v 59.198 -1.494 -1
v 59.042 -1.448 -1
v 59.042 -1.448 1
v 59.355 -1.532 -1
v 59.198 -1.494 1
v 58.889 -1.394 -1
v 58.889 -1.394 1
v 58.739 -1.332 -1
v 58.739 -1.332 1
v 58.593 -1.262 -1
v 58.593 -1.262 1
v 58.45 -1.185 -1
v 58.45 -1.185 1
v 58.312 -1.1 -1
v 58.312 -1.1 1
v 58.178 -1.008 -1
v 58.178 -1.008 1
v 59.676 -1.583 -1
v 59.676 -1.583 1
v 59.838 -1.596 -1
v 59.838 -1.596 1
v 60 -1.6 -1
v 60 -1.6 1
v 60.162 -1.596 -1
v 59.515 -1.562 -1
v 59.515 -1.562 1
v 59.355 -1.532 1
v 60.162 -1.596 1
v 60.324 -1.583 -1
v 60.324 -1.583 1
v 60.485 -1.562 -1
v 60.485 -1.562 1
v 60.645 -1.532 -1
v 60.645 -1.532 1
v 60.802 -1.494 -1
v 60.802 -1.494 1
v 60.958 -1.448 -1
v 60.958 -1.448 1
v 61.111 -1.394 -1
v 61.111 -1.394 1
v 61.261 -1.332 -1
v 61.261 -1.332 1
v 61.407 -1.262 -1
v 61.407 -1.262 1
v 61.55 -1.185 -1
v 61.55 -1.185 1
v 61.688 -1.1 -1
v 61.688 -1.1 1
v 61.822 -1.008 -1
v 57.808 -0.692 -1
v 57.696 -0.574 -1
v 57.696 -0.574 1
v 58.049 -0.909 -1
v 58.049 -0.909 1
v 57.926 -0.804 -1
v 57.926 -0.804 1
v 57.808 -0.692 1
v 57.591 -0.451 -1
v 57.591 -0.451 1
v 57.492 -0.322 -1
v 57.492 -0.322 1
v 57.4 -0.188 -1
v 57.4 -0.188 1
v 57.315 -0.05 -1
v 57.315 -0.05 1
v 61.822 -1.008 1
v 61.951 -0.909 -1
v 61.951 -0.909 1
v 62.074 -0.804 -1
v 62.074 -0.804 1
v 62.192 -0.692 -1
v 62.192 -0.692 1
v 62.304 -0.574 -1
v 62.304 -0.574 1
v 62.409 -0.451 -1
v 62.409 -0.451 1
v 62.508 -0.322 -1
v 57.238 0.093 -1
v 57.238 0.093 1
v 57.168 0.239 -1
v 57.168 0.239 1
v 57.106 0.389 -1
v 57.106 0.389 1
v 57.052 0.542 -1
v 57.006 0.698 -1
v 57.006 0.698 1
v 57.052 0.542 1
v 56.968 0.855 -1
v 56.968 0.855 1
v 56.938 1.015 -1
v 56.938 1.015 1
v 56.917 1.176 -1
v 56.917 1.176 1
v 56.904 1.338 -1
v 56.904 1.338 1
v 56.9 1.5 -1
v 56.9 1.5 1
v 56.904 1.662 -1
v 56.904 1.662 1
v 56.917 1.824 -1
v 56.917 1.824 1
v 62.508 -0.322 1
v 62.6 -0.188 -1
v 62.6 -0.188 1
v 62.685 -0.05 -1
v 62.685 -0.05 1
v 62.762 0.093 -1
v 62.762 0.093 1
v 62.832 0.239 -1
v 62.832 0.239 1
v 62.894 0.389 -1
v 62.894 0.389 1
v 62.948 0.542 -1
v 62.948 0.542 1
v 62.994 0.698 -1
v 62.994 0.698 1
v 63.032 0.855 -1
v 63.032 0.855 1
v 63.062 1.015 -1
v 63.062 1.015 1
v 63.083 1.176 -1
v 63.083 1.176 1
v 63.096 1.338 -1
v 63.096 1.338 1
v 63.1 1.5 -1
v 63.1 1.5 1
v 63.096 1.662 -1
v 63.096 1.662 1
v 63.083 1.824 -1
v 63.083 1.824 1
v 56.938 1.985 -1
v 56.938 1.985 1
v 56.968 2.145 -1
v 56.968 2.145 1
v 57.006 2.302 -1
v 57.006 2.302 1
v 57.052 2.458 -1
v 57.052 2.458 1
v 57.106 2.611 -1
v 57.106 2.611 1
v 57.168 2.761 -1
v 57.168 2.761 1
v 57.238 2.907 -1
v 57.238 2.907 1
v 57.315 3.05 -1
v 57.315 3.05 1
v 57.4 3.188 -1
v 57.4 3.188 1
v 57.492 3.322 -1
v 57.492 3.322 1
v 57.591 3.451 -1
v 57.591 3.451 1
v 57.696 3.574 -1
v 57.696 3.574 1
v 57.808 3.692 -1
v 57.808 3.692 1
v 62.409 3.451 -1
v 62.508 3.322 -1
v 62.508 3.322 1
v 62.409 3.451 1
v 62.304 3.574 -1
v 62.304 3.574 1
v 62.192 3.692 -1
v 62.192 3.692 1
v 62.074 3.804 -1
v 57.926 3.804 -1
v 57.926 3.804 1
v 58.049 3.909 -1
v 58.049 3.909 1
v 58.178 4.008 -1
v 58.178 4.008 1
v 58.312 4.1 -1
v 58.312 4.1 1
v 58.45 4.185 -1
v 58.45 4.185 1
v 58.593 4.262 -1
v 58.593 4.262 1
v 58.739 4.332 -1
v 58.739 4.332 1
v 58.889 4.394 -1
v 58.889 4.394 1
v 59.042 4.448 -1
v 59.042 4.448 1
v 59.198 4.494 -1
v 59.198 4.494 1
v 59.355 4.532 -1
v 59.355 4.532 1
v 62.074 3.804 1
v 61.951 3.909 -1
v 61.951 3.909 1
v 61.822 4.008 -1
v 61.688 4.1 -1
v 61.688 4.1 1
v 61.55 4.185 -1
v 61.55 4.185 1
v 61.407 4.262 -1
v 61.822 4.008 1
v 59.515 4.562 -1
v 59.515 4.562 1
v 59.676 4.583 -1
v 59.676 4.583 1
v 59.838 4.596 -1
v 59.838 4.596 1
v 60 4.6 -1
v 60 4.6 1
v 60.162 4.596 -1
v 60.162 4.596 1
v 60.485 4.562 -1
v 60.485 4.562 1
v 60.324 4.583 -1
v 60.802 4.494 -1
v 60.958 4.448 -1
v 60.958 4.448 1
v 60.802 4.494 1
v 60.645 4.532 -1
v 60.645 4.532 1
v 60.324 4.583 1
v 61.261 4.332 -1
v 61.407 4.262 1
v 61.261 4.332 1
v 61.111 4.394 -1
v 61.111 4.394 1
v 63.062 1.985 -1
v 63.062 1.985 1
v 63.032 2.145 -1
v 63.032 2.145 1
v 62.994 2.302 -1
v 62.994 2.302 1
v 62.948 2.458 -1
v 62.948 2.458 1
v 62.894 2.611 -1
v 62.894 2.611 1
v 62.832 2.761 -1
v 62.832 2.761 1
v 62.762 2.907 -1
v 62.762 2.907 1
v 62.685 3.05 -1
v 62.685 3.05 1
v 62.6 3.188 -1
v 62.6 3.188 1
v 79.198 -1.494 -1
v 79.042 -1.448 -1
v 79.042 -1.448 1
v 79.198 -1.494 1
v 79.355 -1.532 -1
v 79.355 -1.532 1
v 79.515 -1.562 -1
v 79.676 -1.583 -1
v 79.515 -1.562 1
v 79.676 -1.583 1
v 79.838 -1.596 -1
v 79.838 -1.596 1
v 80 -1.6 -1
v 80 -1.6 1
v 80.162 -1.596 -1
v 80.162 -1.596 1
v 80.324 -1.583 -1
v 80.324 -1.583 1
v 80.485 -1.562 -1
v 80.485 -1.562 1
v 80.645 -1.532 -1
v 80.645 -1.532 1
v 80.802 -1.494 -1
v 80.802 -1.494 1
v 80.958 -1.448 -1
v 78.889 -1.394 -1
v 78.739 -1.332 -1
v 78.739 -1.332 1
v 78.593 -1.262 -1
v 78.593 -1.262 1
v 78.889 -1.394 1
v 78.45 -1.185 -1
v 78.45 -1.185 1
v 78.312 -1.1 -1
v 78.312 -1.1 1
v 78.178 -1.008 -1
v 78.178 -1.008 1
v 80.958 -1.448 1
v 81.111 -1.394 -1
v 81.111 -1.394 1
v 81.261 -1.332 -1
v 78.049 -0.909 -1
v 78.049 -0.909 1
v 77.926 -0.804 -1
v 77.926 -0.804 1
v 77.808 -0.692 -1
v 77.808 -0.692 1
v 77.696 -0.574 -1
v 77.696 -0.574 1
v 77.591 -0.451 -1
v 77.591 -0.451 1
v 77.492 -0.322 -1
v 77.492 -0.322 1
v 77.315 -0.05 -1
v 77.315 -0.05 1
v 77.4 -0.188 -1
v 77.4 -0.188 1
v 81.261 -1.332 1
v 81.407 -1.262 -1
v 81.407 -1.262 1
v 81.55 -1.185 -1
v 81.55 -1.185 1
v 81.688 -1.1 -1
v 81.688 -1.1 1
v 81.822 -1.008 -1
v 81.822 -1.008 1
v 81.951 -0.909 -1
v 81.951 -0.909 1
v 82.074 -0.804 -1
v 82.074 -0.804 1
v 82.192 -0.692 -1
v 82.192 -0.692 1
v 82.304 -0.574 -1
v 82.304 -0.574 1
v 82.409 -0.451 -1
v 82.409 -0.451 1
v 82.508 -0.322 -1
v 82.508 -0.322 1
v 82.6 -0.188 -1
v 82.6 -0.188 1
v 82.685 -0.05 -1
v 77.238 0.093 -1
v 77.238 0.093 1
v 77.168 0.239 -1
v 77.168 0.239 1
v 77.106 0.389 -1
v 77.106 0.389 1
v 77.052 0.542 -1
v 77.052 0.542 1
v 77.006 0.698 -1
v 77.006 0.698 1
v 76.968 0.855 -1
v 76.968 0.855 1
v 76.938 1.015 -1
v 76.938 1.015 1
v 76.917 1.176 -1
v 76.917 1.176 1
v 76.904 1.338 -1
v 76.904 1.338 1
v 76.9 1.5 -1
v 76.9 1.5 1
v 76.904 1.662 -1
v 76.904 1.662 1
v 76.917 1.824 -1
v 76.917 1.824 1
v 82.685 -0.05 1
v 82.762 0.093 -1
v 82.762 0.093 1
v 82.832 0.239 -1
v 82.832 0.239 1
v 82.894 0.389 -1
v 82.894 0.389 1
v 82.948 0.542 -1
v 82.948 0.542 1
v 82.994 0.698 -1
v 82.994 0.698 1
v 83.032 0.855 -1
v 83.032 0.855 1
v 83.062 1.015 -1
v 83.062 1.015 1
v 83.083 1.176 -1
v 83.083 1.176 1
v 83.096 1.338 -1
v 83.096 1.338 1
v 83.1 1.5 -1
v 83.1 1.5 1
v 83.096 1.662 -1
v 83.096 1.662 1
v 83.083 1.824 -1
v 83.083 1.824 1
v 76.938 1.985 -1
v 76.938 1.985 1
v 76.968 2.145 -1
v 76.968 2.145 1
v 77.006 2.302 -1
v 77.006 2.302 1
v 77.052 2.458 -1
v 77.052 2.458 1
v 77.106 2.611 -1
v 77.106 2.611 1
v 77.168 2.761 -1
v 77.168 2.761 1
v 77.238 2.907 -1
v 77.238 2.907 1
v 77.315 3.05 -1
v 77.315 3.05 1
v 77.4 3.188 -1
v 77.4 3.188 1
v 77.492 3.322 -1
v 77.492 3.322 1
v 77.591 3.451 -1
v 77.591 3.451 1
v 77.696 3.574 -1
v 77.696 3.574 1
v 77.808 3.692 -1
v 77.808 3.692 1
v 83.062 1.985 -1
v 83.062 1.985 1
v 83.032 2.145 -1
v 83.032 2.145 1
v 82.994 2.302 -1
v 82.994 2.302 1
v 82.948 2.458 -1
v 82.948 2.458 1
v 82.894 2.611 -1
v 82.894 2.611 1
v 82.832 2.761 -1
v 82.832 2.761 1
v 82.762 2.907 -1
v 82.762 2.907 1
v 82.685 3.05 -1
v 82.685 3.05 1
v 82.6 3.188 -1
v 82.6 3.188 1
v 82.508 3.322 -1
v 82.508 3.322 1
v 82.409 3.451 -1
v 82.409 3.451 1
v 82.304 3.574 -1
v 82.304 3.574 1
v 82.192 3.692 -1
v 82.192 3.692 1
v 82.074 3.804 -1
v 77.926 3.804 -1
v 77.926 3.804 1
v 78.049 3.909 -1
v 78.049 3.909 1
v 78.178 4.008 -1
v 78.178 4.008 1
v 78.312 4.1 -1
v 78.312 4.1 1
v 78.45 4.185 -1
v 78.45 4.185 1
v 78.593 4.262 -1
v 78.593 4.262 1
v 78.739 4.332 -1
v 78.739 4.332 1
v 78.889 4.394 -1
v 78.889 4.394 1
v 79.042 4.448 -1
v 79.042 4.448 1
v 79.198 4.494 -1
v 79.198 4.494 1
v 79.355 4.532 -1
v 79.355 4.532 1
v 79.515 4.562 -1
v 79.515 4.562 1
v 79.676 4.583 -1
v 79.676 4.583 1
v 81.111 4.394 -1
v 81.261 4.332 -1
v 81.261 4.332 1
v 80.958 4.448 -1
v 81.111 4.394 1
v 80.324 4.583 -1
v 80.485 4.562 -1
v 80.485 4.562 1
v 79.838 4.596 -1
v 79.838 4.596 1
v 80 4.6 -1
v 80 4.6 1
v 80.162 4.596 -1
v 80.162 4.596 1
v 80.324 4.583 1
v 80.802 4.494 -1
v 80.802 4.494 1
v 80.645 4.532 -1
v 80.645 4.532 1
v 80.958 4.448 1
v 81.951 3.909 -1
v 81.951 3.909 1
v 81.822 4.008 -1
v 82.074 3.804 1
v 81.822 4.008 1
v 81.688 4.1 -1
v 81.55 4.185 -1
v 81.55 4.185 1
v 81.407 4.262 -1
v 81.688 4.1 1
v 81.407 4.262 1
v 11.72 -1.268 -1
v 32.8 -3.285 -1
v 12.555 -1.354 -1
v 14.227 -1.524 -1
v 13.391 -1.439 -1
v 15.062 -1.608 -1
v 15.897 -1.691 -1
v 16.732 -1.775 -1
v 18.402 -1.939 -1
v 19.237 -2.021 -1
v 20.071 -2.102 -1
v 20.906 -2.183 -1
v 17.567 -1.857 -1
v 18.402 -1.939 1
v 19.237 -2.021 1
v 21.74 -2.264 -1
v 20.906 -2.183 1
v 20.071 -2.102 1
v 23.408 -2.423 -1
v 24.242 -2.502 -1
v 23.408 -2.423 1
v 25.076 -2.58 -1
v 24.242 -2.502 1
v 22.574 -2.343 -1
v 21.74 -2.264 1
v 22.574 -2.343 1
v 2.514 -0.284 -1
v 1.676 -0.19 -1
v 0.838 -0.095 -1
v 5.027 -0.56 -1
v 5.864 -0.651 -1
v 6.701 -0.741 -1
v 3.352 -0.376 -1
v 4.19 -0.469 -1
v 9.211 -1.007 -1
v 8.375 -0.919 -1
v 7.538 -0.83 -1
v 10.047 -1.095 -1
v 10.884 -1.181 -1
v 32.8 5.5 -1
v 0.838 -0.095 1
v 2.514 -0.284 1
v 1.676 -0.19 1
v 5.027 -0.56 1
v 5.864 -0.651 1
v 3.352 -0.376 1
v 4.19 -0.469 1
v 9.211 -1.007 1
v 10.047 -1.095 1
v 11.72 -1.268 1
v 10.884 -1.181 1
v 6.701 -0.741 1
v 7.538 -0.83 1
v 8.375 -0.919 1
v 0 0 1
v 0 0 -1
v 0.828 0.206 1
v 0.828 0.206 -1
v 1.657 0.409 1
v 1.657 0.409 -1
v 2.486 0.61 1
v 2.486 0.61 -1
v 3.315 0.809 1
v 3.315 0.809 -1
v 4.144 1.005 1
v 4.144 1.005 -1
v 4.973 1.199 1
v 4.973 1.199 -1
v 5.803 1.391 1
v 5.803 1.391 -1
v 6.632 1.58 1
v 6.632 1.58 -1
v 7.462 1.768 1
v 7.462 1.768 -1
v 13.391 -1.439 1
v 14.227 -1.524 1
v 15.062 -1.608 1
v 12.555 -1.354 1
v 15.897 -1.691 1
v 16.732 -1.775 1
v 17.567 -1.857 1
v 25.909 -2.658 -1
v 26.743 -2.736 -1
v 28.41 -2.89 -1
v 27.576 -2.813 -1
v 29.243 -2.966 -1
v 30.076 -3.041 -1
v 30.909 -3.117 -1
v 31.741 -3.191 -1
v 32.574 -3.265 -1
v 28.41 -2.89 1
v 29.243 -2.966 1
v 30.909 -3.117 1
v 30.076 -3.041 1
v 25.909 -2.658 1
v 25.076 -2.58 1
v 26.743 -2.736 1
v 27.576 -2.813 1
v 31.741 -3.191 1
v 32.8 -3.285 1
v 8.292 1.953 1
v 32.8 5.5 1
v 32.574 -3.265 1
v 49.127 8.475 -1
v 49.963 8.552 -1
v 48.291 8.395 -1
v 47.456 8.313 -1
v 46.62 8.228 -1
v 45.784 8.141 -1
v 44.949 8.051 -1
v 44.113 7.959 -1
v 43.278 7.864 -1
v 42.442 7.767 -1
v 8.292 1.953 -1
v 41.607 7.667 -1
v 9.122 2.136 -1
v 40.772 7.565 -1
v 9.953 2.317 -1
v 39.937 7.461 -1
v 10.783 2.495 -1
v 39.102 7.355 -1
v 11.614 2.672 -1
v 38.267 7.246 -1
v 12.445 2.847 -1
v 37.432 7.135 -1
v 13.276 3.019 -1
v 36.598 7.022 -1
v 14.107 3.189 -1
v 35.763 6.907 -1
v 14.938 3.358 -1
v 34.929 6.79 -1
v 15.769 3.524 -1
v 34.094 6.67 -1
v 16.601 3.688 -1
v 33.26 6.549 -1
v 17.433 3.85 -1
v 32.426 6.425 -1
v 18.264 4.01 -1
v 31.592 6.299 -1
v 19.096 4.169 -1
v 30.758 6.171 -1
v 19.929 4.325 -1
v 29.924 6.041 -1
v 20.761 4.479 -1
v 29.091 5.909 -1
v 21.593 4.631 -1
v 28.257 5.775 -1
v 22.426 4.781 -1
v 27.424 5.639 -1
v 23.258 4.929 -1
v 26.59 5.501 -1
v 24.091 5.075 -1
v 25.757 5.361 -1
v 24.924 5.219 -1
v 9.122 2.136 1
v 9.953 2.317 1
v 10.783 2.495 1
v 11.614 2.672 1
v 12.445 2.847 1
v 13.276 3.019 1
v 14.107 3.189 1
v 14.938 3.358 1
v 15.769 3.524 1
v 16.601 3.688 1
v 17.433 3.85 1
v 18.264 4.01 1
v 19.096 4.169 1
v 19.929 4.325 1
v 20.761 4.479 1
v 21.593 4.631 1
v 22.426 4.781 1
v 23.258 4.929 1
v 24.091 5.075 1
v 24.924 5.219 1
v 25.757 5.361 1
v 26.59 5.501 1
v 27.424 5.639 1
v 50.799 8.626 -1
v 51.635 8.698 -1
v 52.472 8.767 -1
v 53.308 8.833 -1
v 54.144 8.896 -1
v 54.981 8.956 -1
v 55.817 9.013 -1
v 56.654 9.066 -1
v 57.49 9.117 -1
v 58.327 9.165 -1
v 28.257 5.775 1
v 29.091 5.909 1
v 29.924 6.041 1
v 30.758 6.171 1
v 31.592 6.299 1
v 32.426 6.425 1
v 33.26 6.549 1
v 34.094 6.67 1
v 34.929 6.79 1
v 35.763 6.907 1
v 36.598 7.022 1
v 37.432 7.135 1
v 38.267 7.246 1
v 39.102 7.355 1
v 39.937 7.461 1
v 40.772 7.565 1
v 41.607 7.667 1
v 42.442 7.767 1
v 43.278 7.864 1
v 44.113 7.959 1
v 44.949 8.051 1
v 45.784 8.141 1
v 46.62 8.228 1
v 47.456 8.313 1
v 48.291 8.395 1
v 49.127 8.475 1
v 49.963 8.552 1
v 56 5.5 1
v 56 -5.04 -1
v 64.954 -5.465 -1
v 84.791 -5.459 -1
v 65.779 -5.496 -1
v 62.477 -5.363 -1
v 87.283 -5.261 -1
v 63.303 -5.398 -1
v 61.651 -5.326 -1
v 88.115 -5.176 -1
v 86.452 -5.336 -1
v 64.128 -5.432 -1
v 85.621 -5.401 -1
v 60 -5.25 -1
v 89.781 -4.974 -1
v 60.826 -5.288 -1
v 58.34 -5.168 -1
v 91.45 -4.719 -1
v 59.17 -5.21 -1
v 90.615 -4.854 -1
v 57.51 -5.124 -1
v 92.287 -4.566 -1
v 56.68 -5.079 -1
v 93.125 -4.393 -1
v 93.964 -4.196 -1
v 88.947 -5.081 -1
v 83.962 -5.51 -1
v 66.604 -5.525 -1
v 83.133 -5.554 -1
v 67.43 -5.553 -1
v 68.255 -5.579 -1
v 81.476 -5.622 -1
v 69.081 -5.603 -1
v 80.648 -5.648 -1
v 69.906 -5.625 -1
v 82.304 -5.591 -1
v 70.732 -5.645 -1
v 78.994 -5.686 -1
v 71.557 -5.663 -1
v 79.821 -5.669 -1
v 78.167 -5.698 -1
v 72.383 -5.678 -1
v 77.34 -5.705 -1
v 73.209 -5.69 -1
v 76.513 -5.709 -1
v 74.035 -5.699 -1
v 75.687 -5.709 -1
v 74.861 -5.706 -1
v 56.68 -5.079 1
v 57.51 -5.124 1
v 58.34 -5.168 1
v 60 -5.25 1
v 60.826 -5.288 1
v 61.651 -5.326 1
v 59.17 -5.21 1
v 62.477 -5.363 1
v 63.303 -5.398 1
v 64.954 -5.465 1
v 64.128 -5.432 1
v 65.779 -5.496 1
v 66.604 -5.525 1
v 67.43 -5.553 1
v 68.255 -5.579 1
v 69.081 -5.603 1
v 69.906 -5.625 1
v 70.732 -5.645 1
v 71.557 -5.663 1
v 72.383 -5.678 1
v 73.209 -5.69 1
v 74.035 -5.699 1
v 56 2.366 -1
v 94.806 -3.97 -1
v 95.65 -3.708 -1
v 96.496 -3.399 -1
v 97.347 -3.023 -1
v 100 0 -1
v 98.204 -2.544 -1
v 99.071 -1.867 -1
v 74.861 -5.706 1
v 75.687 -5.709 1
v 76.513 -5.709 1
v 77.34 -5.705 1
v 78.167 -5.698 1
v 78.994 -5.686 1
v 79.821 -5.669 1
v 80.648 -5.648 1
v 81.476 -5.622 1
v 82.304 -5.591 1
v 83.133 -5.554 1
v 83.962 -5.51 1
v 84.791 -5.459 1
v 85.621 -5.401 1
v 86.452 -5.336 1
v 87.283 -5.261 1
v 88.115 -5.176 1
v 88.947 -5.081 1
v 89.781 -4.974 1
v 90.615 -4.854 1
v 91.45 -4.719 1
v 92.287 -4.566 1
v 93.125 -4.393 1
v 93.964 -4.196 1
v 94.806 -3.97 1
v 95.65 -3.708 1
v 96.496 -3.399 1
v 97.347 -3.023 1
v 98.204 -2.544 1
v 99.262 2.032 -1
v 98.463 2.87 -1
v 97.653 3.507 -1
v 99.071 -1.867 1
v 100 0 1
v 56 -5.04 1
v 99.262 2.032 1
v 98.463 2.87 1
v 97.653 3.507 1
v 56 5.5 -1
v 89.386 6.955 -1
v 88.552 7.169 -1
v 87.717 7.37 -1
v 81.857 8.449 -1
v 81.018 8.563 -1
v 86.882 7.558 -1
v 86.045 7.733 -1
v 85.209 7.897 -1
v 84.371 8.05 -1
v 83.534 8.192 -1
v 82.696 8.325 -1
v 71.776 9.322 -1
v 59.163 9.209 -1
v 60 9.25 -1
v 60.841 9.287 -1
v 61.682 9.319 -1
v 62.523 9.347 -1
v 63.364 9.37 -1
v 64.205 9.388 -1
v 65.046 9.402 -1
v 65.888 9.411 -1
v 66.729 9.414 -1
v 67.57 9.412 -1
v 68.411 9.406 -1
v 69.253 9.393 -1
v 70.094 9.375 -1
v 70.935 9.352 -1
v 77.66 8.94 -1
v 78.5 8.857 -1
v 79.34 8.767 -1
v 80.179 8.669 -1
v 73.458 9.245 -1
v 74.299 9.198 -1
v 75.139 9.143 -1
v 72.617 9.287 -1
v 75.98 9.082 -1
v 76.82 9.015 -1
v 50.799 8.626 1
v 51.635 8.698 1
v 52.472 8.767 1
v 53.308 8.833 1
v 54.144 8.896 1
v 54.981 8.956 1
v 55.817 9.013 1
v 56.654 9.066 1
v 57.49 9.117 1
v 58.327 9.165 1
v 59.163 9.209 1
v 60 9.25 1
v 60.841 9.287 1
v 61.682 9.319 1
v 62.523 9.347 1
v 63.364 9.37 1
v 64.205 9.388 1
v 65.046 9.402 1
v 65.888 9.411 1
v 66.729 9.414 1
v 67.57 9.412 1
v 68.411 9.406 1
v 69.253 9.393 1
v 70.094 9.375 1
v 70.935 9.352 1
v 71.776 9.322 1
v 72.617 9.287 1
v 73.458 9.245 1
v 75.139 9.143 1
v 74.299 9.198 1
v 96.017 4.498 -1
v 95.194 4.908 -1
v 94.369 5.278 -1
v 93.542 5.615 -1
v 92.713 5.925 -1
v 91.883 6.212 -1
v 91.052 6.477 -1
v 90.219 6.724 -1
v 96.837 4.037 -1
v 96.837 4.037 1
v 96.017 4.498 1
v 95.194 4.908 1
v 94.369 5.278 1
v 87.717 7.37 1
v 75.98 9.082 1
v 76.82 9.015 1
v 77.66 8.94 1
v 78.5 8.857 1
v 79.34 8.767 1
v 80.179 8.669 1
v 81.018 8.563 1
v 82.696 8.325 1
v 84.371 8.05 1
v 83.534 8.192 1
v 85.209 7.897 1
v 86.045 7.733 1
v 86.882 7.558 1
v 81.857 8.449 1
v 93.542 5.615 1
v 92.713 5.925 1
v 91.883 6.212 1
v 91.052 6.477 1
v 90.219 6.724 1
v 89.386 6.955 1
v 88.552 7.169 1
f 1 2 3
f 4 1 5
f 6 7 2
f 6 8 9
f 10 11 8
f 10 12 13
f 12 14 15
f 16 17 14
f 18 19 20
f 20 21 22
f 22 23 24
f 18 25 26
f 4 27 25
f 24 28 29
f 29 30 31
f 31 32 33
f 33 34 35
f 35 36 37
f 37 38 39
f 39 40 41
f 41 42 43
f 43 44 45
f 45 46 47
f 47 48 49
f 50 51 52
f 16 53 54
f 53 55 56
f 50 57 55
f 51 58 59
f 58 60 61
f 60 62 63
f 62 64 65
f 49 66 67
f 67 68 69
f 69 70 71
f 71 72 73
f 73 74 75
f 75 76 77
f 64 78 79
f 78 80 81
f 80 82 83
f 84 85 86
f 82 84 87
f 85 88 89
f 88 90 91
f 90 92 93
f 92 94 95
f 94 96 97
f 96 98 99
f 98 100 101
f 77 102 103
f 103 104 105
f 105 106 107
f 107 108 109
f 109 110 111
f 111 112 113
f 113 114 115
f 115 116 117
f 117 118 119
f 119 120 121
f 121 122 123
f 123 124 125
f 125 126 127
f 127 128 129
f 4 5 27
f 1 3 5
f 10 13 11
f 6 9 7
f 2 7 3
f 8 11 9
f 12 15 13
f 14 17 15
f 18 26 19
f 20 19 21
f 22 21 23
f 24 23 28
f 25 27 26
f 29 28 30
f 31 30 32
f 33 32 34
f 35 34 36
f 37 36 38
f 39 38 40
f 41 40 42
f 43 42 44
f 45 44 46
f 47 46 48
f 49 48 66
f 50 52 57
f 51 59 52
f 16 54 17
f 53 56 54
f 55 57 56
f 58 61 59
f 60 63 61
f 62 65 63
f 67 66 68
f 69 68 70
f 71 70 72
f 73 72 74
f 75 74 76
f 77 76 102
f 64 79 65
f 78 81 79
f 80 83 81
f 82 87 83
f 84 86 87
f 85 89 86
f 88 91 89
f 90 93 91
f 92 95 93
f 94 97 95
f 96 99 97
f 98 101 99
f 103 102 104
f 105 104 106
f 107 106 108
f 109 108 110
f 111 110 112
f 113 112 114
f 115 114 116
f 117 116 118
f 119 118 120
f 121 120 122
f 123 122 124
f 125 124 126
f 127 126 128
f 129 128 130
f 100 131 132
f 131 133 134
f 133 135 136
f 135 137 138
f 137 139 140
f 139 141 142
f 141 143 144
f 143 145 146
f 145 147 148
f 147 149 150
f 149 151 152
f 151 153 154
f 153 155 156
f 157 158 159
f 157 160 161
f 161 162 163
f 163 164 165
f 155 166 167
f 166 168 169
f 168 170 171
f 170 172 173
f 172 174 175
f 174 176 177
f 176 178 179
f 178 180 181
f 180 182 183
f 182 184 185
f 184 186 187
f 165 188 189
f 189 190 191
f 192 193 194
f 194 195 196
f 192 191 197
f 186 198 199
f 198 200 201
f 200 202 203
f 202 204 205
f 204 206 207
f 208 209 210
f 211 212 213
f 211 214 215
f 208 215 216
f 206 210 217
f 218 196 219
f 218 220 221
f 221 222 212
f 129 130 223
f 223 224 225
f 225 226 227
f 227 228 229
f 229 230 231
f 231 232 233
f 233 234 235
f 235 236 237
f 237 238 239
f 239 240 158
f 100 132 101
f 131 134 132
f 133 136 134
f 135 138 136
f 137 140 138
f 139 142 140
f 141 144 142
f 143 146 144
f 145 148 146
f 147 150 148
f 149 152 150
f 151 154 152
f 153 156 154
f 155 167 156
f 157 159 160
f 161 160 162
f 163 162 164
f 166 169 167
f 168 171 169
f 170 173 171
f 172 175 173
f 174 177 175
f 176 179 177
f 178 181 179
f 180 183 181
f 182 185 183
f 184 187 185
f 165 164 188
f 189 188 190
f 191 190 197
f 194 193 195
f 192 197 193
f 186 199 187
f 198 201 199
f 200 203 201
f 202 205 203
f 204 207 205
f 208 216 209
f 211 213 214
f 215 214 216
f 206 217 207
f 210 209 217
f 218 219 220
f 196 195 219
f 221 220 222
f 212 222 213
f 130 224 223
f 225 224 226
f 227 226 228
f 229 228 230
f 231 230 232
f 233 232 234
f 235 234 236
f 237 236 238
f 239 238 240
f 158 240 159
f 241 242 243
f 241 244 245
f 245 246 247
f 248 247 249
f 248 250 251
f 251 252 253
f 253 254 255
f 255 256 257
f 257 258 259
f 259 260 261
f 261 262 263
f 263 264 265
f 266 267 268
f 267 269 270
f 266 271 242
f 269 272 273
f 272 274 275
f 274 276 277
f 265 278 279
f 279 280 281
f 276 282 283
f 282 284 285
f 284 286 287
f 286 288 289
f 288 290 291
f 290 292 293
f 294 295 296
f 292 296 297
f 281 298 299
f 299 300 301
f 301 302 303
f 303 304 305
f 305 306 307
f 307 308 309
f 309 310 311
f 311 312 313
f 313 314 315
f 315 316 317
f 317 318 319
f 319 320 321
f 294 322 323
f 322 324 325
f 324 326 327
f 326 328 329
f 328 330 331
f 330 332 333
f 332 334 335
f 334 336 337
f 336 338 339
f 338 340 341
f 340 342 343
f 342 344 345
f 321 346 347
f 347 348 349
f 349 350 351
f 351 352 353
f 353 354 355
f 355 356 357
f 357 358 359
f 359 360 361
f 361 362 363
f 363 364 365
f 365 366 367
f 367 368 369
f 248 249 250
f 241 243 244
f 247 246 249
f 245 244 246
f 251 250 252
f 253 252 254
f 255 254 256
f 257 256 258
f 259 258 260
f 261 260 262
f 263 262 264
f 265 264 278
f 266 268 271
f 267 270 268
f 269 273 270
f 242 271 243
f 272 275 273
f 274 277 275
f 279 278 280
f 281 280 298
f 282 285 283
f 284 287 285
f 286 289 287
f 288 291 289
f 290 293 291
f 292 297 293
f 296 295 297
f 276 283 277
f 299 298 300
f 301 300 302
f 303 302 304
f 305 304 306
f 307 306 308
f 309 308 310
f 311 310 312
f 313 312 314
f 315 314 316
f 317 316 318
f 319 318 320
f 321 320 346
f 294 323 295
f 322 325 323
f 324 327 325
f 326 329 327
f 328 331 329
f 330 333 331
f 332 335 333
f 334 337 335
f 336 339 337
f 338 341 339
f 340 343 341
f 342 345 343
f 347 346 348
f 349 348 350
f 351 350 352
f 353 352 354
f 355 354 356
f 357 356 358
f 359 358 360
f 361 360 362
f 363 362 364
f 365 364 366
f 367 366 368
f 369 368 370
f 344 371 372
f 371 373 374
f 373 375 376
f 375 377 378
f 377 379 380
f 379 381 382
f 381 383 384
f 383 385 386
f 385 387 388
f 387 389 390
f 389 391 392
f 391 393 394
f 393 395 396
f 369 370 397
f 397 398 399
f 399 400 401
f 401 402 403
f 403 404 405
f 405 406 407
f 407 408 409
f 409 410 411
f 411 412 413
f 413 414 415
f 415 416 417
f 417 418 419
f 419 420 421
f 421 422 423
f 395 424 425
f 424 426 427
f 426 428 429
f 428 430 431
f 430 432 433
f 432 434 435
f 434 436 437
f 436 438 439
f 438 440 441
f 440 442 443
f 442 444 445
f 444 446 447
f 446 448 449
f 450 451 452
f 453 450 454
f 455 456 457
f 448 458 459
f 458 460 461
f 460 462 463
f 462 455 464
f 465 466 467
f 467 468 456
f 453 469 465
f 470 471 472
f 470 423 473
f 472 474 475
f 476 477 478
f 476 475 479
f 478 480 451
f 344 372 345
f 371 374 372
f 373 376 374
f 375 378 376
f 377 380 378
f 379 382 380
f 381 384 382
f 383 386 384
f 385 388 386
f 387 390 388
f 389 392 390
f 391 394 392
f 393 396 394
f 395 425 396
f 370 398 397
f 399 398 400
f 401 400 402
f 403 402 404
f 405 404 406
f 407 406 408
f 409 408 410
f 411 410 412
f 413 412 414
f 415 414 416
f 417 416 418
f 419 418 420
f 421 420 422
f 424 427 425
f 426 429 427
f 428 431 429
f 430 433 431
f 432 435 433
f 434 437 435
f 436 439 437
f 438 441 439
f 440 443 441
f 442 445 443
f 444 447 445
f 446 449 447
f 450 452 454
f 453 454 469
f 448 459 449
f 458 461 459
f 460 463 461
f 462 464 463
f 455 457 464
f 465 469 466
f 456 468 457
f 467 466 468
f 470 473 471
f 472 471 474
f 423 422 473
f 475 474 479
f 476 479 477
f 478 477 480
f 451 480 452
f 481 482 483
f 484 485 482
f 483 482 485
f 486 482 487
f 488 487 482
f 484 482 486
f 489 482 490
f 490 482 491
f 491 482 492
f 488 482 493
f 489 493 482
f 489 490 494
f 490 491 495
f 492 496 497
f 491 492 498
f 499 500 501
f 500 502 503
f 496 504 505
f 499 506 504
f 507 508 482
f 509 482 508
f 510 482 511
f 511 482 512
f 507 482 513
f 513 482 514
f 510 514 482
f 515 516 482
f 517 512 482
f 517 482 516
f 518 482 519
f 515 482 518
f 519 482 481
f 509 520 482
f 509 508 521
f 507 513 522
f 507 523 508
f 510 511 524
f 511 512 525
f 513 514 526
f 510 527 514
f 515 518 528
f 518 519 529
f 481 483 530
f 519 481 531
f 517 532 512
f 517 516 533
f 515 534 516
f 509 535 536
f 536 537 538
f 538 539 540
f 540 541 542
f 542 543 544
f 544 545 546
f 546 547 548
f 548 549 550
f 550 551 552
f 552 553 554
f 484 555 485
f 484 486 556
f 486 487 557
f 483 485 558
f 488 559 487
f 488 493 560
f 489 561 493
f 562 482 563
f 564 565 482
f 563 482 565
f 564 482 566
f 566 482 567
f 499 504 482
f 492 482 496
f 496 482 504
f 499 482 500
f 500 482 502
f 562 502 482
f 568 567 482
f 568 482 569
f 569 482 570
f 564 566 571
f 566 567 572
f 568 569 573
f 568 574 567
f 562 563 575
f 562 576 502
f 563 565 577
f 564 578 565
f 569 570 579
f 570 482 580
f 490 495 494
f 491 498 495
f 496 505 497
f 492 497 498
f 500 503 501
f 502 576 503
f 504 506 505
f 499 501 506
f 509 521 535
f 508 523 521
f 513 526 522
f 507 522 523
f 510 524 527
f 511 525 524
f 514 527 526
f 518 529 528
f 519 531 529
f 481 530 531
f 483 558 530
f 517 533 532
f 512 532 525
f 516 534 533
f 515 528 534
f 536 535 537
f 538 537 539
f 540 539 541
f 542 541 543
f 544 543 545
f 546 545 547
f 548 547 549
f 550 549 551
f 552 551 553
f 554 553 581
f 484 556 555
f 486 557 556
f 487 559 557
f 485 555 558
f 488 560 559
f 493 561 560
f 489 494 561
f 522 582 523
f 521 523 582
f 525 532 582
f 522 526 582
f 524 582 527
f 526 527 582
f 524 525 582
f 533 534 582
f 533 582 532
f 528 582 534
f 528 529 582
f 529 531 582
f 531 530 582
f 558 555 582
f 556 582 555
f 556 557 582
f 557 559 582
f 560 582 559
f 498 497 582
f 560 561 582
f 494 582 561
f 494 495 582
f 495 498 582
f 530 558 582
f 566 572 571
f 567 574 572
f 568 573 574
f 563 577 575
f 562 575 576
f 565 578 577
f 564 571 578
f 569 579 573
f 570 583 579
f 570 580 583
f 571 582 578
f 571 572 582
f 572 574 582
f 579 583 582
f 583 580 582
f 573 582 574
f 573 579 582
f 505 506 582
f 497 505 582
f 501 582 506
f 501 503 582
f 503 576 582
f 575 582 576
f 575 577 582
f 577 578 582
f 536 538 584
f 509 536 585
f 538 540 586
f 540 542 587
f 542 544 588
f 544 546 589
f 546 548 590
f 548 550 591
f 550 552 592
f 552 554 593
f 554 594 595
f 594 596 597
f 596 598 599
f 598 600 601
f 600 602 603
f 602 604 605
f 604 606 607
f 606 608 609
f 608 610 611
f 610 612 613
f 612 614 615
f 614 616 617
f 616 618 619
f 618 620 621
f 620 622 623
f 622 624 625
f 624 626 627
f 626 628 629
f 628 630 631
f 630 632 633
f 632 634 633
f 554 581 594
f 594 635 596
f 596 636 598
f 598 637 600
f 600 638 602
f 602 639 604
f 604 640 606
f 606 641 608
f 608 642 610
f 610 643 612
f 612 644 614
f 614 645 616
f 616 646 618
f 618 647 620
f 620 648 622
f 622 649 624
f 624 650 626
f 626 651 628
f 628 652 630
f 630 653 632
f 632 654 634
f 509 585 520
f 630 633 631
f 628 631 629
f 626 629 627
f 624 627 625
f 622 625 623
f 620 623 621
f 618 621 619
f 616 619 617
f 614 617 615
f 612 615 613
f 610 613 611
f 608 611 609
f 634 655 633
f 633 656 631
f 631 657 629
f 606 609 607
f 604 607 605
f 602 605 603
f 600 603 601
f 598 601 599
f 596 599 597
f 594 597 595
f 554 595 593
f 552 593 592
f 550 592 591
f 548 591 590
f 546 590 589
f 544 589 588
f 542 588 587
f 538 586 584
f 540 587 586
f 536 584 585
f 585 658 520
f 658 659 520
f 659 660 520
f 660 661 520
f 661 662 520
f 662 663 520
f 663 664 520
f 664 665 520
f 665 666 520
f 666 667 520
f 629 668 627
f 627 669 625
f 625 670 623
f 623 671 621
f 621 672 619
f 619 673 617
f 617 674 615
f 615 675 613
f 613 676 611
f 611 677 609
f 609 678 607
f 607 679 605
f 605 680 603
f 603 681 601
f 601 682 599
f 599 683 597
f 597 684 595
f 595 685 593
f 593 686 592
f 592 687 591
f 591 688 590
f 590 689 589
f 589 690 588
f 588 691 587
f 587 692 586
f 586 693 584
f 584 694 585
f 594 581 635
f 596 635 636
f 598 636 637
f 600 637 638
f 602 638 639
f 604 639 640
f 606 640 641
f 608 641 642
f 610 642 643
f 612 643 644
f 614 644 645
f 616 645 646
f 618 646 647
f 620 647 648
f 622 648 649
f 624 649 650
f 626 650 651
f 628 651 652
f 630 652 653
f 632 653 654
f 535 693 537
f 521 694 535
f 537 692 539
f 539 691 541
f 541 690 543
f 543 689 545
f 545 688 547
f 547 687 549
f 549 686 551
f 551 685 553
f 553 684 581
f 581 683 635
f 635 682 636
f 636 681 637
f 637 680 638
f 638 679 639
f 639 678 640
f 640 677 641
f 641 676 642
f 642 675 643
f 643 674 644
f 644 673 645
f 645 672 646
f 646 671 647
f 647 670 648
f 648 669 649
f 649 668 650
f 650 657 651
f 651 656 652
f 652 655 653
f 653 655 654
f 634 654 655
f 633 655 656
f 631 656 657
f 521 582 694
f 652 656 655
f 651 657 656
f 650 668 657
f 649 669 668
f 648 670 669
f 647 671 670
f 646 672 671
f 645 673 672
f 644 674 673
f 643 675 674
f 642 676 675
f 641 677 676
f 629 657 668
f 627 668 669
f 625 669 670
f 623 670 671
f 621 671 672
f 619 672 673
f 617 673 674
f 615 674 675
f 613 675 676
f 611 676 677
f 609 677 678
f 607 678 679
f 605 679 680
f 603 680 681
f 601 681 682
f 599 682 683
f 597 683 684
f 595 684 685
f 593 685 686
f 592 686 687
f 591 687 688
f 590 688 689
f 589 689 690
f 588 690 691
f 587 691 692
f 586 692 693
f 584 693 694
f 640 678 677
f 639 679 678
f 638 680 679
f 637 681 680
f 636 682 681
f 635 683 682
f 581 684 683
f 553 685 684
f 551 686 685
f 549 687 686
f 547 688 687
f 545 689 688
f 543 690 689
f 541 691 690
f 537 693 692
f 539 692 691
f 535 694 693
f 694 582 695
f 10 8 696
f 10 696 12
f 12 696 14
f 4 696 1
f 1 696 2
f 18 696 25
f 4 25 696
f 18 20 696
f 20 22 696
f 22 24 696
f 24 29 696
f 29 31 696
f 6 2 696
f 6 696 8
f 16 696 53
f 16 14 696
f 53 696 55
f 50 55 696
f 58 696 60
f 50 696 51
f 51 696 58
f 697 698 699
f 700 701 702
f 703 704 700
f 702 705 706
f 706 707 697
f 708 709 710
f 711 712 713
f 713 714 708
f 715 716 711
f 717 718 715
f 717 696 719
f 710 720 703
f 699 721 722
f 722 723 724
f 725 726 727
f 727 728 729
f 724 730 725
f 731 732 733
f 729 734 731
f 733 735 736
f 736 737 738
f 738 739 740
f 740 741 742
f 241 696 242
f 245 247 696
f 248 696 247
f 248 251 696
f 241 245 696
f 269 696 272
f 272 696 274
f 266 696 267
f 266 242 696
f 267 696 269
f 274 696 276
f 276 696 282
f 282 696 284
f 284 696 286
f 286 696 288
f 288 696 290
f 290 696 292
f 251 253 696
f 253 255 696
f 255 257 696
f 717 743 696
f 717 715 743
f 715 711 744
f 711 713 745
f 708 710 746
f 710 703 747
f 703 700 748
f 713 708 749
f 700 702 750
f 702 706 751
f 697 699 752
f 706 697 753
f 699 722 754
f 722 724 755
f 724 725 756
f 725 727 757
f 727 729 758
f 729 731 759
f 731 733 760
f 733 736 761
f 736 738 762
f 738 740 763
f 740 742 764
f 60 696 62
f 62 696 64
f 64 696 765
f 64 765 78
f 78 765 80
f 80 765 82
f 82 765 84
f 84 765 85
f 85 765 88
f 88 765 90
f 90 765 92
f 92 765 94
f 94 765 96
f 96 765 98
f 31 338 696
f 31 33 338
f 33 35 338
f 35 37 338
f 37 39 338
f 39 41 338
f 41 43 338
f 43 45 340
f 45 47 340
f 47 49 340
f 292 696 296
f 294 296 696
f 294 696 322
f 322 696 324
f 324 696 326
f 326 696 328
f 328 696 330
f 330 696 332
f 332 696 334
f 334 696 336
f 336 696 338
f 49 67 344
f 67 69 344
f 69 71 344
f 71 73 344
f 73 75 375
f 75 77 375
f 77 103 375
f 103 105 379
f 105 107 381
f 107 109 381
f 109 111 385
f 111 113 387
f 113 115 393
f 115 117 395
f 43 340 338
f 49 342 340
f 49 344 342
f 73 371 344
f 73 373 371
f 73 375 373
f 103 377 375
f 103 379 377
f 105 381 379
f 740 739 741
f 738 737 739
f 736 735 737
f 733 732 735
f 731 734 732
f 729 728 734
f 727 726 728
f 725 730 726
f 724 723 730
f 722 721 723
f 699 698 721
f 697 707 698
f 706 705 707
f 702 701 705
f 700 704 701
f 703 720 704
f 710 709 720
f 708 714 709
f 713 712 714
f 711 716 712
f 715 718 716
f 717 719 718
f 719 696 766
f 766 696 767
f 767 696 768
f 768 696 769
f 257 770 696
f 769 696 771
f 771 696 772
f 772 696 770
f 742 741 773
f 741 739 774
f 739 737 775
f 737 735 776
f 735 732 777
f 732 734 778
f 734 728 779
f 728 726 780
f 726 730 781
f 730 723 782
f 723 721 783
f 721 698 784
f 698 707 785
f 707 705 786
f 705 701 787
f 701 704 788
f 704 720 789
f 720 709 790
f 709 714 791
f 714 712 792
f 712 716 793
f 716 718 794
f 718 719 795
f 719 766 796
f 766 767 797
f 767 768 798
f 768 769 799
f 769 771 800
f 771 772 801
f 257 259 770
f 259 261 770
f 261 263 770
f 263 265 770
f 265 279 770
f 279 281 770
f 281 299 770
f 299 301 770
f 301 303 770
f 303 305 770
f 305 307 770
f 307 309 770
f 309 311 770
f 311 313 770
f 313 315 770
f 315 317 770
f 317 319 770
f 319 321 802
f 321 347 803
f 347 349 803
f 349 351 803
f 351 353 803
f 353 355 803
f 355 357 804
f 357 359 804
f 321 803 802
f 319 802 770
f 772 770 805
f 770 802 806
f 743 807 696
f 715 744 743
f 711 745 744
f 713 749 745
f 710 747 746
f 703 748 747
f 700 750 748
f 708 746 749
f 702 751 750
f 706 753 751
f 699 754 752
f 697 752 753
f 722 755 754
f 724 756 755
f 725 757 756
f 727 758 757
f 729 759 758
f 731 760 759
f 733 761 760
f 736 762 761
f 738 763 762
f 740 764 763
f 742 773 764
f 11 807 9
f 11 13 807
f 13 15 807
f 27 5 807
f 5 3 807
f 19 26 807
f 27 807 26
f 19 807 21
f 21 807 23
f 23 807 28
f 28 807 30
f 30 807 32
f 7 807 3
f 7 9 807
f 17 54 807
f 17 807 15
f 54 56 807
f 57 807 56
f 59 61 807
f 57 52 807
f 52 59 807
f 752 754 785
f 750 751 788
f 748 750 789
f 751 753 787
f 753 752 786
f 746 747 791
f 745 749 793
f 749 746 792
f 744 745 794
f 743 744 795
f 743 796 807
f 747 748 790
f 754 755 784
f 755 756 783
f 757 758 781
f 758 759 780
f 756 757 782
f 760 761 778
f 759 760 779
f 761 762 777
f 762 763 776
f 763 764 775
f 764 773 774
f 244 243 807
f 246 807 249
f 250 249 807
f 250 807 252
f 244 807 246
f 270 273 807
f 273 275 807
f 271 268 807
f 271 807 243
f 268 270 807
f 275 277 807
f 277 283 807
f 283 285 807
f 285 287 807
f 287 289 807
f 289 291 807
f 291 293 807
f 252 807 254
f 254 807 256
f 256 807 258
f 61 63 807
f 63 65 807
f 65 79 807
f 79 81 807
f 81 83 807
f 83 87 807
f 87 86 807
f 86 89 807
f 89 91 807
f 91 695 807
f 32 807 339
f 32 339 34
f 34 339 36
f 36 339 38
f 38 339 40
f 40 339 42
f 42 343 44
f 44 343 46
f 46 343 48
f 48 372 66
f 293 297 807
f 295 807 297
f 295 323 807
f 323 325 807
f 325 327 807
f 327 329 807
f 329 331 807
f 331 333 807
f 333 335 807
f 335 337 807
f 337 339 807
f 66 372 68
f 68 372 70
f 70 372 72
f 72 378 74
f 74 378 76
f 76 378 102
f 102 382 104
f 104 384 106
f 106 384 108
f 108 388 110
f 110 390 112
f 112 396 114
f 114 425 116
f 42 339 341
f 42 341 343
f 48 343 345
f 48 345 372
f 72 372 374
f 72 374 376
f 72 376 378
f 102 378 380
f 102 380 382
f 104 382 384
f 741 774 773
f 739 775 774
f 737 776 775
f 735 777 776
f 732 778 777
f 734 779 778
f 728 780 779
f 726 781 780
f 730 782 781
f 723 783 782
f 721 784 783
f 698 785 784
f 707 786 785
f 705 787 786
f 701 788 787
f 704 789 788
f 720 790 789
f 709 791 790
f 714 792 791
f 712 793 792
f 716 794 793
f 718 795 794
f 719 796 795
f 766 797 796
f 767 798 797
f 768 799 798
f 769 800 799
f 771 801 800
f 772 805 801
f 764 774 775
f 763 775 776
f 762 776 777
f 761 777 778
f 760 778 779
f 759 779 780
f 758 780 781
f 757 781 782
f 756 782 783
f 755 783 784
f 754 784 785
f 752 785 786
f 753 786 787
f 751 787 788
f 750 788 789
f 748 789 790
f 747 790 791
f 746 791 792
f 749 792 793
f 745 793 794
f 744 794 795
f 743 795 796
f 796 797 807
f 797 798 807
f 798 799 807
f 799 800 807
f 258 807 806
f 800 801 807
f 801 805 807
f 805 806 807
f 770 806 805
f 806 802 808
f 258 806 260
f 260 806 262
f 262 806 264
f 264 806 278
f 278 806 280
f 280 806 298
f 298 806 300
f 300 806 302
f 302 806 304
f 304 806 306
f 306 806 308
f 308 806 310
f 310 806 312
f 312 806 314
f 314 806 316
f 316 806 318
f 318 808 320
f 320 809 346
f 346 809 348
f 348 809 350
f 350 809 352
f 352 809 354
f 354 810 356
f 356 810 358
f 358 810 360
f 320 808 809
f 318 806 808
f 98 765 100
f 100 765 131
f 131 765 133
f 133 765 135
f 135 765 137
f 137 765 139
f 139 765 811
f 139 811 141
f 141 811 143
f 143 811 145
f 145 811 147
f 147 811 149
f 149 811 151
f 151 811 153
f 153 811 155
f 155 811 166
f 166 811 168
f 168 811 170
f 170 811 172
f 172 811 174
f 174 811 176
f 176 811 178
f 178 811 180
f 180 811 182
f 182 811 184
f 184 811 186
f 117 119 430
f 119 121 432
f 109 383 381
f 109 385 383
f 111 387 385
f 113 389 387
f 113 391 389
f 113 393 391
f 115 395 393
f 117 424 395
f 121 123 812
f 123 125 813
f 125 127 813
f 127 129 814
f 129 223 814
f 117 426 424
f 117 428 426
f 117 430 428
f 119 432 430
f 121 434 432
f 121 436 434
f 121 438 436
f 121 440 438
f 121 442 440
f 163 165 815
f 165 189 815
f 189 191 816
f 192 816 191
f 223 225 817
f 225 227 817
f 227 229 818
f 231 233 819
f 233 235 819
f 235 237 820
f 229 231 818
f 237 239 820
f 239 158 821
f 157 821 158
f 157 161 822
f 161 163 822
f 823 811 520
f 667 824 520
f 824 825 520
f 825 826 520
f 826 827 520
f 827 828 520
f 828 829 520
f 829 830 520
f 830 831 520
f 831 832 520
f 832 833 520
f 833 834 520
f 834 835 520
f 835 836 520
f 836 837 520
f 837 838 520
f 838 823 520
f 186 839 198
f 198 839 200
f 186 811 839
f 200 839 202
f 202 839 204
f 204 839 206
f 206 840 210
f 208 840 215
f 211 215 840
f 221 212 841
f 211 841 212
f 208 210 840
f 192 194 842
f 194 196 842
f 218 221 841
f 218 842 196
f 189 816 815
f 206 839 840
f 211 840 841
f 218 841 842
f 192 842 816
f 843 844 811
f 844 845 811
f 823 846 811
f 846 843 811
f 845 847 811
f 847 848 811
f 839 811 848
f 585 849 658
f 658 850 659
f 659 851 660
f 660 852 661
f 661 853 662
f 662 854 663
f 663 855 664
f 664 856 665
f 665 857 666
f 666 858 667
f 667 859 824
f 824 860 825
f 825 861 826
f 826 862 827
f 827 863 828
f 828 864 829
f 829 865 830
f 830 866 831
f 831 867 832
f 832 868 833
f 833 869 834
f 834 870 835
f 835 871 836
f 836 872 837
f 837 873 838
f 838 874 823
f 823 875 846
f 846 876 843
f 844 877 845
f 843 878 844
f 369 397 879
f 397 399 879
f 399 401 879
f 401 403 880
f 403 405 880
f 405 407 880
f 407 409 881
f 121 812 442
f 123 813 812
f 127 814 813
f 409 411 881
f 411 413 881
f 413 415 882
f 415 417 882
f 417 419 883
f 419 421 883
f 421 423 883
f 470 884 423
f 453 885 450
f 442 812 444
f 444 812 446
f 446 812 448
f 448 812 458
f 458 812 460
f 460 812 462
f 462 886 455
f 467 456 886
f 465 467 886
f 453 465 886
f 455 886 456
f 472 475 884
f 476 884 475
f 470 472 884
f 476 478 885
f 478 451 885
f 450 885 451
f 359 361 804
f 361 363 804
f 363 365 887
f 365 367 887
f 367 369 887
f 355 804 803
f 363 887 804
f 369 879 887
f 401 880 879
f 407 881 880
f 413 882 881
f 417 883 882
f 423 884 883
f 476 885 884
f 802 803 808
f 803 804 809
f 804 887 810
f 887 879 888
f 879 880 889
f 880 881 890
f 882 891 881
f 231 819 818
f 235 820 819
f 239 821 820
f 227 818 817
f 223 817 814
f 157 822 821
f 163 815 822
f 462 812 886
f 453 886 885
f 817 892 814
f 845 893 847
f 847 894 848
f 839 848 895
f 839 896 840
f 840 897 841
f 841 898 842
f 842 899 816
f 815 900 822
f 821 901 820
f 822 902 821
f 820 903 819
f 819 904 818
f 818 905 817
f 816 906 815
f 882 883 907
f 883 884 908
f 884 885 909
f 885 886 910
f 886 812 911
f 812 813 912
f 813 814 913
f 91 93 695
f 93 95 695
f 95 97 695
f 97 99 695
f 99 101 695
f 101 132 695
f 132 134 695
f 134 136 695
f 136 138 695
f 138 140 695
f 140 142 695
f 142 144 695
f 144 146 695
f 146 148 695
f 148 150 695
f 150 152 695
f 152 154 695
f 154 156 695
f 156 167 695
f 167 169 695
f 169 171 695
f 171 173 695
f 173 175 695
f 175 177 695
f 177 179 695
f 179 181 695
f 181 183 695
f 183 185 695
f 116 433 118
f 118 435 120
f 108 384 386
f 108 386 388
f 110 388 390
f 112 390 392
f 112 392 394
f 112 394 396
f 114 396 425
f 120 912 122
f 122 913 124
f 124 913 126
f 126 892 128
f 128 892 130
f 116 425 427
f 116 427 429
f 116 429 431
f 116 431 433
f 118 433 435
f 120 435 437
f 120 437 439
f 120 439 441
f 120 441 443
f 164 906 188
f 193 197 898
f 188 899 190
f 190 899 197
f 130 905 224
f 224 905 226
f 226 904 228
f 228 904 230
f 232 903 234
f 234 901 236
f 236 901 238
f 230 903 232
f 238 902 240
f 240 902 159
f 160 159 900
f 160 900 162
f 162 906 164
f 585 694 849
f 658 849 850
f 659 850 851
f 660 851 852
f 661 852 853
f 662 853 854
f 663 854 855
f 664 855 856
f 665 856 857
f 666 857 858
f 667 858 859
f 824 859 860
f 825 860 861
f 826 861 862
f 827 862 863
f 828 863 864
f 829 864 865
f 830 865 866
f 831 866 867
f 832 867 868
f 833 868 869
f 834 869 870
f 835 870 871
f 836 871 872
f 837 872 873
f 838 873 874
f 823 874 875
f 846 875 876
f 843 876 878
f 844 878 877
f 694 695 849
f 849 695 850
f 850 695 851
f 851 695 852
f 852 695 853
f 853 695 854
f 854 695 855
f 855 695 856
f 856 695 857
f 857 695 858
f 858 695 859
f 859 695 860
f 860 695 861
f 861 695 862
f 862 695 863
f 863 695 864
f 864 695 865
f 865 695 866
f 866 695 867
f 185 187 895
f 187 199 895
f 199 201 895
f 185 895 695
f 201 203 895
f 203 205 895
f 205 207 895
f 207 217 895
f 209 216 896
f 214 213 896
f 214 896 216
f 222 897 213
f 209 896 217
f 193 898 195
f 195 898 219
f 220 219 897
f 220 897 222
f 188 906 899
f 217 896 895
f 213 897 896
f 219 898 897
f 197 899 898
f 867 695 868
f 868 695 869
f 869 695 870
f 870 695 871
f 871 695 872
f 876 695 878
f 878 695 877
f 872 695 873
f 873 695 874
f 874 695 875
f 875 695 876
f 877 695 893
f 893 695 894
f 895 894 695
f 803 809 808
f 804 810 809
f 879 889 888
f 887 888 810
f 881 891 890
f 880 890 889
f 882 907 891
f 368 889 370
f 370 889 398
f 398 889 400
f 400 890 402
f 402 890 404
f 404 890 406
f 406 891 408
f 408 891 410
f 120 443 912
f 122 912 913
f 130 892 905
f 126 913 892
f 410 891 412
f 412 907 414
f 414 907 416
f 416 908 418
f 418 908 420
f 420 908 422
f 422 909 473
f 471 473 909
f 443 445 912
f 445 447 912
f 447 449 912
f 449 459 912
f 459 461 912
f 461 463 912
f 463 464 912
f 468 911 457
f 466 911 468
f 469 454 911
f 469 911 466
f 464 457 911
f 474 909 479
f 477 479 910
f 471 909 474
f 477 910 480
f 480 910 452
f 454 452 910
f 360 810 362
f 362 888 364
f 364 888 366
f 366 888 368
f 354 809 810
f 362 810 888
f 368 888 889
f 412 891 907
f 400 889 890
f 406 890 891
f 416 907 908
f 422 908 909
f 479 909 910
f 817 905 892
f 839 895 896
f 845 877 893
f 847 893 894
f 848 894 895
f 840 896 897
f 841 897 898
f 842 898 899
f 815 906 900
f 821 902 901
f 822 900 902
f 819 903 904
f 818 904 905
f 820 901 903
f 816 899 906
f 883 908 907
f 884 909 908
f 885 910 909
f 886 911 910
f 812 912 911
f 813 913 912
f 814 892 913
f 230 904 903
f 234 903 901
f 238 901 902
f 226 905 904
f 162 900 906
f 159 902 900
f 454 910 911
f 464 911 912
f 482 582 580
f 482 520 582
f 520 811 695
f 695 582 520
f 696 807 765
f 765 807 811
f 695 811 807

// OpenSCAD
// file: design_params.scad
// ============================================================
// STARLING SHARED DESIGN PARAMETERS — single source of truth for
// every dimension two parts must agree on.
//
// Consumers:
//   - every part in cad/ does        include <design_params.scad>
//   - parts in cad/calibration/ do   include <../design_params.scad>
//   - scripts/check_params.py FAILS the build if any of these names
//     is re-declared anywhere else — change values HERE only.
//
// Keep this file to simple `name = value;` lines so the tooling can
// parse it. One-off experiments: `openscad -D name=value` beats the
// include, no need to edit this file.
// ============================================================

// --- The paper tube (bought part, consumable) ---
tube_od     = 52.95;   // measured tube OD — verify with cad/calibration/tube_fit_ring.scad
tube_wall   = 3;       // paper wall thickness (measure your tube)
tube_length = 540;

// --- Printed-part fits ---
sleeve_clearance = 0;  // added to every sleeve bore diameter; tune via the fit ring
fit_tol          = 0.2; // clearance for printed slots/pockets
sleeve_wall      = 3;  // wall thickness of printed sleeves

// --- Wing spar chain (rib holes = adapter sockets = carbon rods) ---
spar_rod_d    = 6;     // carbon rod diameter
spar_hole_d   = 6.2;   // printed hole for that rod
spar_spacing  = 20;    // chordwise distance between the two spars
spar_y_offset = 1.5;   // spar line sits this far above the rib chord line

// --- Wing geometry ---
rib_chord     = 100;
naca_code     = 2415;  // cambered lifting section
rib_thickness = 2;

// --- Wing adapter <-> root rib interface ---
wing_tab_thickness = 11; // adapter tab (socket carrier; ribs sit outboard of it)
wing_tab_span      = 15; // how far the tab reaches out from the sleeve
adapter_length     = 40; // sleeve length = tab chord extent

// --- Stations along the tube (assembly; wing slides for CG trim) ---
wing_station       = 300; // wing adapter position, measured from the motor face
tail_tube_stop     = 54;  // tube bottoms out here inside the tail sleeve (rim top)
nose_sleeve_length = 20;  // how far the nose cone slides over the tube

// --- Servos (9 g / SG90 class) ---
servo_body   = [23, 12.2]; // [length, width]
servo_flange = [32, 12.2];
servo_height = 22;         // body height incl. shaft boss, without horn

// --- Control system (internal servos, wire pushrods through wall slots) ---
ctrl_chord       = 22;   // control-surface chord (elevator / rudder / aileron)
ctrl_thickness   = 4;    // control-surface root thickness = fin thickness
hinge_groove_w   = 1.6;  // groove for the hinge strip/tape, both fin TE and surface LE
hinge_groove_d   = 2.5;
pushrod_d        = 1.2;  // piano-wire pushrod, attached at the TIP of both arms
pushrod_slot_w   = 2.5;  // wall slot the pushrod moves in
pushrod_slot_len = 18;   // slot channel length along the rod (see throw_check.py)
servo_horn_r     = 10;   // full arm length — the wire connects at the far end
servo_travel_deg = 45;   // used one-sided travel; the arm can do ~±90 (180 total)
                         // but the linkage stays near-linear only within ±45
ctrl_horn_r      = 10;   // control-surface horn = servo horn -> 1:1 linkage

// Tail linkage geometry: servos sit HIGH in the tail sleeve and the wire
// rakes down/outboard through an ANGLED wall slot to the surface horn.
tail_servo_z    = 30;    // aft (shaft) end of the tail servo bodies
tail_slot_angle = 42;    // rod angle off the fuselage axis, in the radial plane

// --- Motor (22xx class, rear pusher) ---
motor_shaft_hole_d = 10;
motor_screw_hole_d = 4;
motor_pattern_x    = 16;  // screw pattern
motor_pattern_y    = 19;
// file: wing_rib.scad
// ==============================================================================
//   WING RIB — printed NACA rib for the foam-skinned, carbon-spar wing.
//
//   The foam-board skin WRAPS over the ribs: a 5 mm skin cannot be inlaid
//   into a ~15 mm thick section, so there are deliberately no skin slots —
//   the rib profile is the wing's inner mold line.
//
//   wing_rib_with_cutouts() — standard rib: two spar holes + a cable hole
//   wing_rib_servo()        — servo rib: adds an open-bottom bay aft of the
//                             rear spar that carries the aileron servo
//                             (print 1 per panel, see cad/wing_rib_servo.scad)
//
//   All ribs sit OUTBOARD of the adapter tab (innermost station > tab tip) —
//   ribs never overlap the adapter.
// ==============================================================================

include <design_params.scad>

$fn = 120;

// ==============================================================================
//   NACA AIRFOIL FUNCTIONS
//   Plain variables only — no $-specials: top-level $var assignments are
//   invisible to use<> consumers and fall back silently. That bug shipped
//   once; don't reintroduce it.
// ==============================================================================

airfoil_fn = 120; // points along the chord

// Half-thickness of a symmetric NACA section; 0.1036 closes the TE cleanly
function foil_y(x, c, t) =
    (5 * t * c) * ( 0.2969 * sqrt(x / c) - 0.1260 * (x / c)
                  - 0.3516 * pow(x / c, 2) + 0.2843 * pow(x / c, 3)
                  - 0.1036 * pow(x / c, 4) );

// Camber line
function camber(x, c, m, p) = ( x <= (p * c) ?
    ( ( (c * m) / pow(p, 2) )       * ( ( 2 * p * (x / c) ) - pow(x / c, 2) ) ) :
    ( ( (c * m) / pow(1 - p, 2) )   * ( (1 - (2 * p)) + ( 2 * p * (x / c) ) - pow(x / c, 2) ) ) );

// Angle of the camber line
function theta(x, c, m, p) = ( x <= (p * c) ?
    atan( ( m / pow(p, 2) )     * (p - (x / c)) ) :
    atan( ( m / pow(1 - p, 2) ) * (p - (x / c)) ) );

// Upper/lower surface coordinates
function camber_y(x, c, t, m, p, upper=true) = ( upper ?
    ( camber(x, c, m, p) + (foil_y(x, c, t) * cos(theta(x, c, m, p))) ) :
    ( camber(x, c, m, p) - (foil_y(x, c, t) * cos(theta(x, c, m, p))) ) );

function camber_x(x, c, t, m, p, upper=true) = ( upper ?
    ( x - (foil_y(x, c, t) * sin(theta(x, c, m, p))) ) :
    ( x + (foil_y(x, c, t) * sin(theta(x, c, m, p))) ) );

module airfoil_poly(c = 100, naca = 0015) {
    res = c / airfoil_fn;
    t = (naca % 100) / 100;              // thickness/chord
    m = floor(naca / 1000) / 100;        // max camber
    p = (floor(naca / 100) % 10) / 10;   // position of max camber

    points_u = ( m == 0 || p == 0 ) ?
        [for (i = [0:res:c]) [i, foil_y(i, c, t)]] :
        [for (i = [0:res:c]) [camber_x(i, c, t, m, p), camber_y(i, c, t, m, p)]];

    points_l = ( m == 0 || p == 0 ) ?
        [for (i = [c:-res:0]) [i, -foil_y(i, c, t)]] :
        [for (i = [c:-res:0]) [camber_x(i, c, t, m, p, upper=false), camber_y(i, c, t, m, p, upper=false)]];

    polygon(concat(points_u, points_l));
}

// ==============================================================================
//   RIB-LOCAL CONFIGURATION (part-internal, not an interface)
// ==============================================================================

spar_x_pos = 0.4;             // rear spar at 40% chord (front one lands at 20%)
cable_hole_diameter = 6;
cable_hole_x_pos = 0.6;       // fraction of chord
cable_hole_y_offset = 1.5;

// ==============================================================================
//   RIB MODULES
// ==============================================================================

module wing_rib_with_cutouts() {
    spar_x_offset = rib_chord * (1 - spar_x_pos);
    cable_hole_x_offset = rib_chord * (1 - cable_hole_x_pos);

    difference() {
        translate([rib_chord, 0, 0])
            rotate([0, 180, 0])
                linear_extrude(height = rib_thickness, center = true)
                    airfoil_poly(c = rib_chord, naca = naca_code);

        for (dx = [0, spar_spacing])
            translate([spar_x_offset + dx, spar_y_offset, 0])
                cylinder(h = rib_thickness * 2 + 0.2, d = spar_hole_d, center = true);

        translate([cable_hole_x_offset, cable_hole_y_offset, 0])
            cylinder(h = rib_thickness * 2 + 0.2, d = cable_hole_diameter, center = true);
    }
}

// Servo rib: carries the aileron servo. An open-bottom bay aft of the rear
// spar takes the servo body (inserted from below, lying flat: shaft along
// the span, arm swinging in the chord-vertical plane, up through the top
// skin); the servo's flange seats on the rib's OUTBOARD face, overlapping
// the bay ends — tack it with CA or strapping tape.
// The aft bay of a 15%/100 mm section is thinner than a 9 g servo, so the
// bay opens through the bottom and the servo sits ~3 mm proud of the LOWER
// skin — fair it with tape, or drop to a 5 g servo which fits flush. The
// strip above the bay thins to ~1.5 mm; the glued-on top skin backs it up.
// The bay's forward edge keeps ~1 mm of material to the rear spar hole.
module wing_rib_servo() {
    bay_l    = servo_body[0] + fit_tol;
    bay_h    = servo_body[1] + fit_tol;
    bay_x_hi = rib_chord * 0.56;   // bay spans 44%..67.4% chord, aft of the rear spar
    bay_y0   = -6.9;               // keeps a printable strip under the top surface

    difference() {
        wing_rib_with_cutouts();
        translate([bay_x_hi - bay_l, bay_y0, -rib_thickness])
            cube([bay_l, bay_h, rib_thickness * 2]);
    }
}

wing_rib_with_cutouts();
// main file
// SERVO RIB — print ONE per wing panel. Standard rib plus the open-bottom
// servo bay aft of the rear spar; the aileron servo's flange seats on this
// rib's outboard face. Geometry lives in wing_rib.scad; this file only
// exists so regen_all.py exports its STL.

use <wing_rib.scad>

$fn = 120;
wing_rib_servo();
